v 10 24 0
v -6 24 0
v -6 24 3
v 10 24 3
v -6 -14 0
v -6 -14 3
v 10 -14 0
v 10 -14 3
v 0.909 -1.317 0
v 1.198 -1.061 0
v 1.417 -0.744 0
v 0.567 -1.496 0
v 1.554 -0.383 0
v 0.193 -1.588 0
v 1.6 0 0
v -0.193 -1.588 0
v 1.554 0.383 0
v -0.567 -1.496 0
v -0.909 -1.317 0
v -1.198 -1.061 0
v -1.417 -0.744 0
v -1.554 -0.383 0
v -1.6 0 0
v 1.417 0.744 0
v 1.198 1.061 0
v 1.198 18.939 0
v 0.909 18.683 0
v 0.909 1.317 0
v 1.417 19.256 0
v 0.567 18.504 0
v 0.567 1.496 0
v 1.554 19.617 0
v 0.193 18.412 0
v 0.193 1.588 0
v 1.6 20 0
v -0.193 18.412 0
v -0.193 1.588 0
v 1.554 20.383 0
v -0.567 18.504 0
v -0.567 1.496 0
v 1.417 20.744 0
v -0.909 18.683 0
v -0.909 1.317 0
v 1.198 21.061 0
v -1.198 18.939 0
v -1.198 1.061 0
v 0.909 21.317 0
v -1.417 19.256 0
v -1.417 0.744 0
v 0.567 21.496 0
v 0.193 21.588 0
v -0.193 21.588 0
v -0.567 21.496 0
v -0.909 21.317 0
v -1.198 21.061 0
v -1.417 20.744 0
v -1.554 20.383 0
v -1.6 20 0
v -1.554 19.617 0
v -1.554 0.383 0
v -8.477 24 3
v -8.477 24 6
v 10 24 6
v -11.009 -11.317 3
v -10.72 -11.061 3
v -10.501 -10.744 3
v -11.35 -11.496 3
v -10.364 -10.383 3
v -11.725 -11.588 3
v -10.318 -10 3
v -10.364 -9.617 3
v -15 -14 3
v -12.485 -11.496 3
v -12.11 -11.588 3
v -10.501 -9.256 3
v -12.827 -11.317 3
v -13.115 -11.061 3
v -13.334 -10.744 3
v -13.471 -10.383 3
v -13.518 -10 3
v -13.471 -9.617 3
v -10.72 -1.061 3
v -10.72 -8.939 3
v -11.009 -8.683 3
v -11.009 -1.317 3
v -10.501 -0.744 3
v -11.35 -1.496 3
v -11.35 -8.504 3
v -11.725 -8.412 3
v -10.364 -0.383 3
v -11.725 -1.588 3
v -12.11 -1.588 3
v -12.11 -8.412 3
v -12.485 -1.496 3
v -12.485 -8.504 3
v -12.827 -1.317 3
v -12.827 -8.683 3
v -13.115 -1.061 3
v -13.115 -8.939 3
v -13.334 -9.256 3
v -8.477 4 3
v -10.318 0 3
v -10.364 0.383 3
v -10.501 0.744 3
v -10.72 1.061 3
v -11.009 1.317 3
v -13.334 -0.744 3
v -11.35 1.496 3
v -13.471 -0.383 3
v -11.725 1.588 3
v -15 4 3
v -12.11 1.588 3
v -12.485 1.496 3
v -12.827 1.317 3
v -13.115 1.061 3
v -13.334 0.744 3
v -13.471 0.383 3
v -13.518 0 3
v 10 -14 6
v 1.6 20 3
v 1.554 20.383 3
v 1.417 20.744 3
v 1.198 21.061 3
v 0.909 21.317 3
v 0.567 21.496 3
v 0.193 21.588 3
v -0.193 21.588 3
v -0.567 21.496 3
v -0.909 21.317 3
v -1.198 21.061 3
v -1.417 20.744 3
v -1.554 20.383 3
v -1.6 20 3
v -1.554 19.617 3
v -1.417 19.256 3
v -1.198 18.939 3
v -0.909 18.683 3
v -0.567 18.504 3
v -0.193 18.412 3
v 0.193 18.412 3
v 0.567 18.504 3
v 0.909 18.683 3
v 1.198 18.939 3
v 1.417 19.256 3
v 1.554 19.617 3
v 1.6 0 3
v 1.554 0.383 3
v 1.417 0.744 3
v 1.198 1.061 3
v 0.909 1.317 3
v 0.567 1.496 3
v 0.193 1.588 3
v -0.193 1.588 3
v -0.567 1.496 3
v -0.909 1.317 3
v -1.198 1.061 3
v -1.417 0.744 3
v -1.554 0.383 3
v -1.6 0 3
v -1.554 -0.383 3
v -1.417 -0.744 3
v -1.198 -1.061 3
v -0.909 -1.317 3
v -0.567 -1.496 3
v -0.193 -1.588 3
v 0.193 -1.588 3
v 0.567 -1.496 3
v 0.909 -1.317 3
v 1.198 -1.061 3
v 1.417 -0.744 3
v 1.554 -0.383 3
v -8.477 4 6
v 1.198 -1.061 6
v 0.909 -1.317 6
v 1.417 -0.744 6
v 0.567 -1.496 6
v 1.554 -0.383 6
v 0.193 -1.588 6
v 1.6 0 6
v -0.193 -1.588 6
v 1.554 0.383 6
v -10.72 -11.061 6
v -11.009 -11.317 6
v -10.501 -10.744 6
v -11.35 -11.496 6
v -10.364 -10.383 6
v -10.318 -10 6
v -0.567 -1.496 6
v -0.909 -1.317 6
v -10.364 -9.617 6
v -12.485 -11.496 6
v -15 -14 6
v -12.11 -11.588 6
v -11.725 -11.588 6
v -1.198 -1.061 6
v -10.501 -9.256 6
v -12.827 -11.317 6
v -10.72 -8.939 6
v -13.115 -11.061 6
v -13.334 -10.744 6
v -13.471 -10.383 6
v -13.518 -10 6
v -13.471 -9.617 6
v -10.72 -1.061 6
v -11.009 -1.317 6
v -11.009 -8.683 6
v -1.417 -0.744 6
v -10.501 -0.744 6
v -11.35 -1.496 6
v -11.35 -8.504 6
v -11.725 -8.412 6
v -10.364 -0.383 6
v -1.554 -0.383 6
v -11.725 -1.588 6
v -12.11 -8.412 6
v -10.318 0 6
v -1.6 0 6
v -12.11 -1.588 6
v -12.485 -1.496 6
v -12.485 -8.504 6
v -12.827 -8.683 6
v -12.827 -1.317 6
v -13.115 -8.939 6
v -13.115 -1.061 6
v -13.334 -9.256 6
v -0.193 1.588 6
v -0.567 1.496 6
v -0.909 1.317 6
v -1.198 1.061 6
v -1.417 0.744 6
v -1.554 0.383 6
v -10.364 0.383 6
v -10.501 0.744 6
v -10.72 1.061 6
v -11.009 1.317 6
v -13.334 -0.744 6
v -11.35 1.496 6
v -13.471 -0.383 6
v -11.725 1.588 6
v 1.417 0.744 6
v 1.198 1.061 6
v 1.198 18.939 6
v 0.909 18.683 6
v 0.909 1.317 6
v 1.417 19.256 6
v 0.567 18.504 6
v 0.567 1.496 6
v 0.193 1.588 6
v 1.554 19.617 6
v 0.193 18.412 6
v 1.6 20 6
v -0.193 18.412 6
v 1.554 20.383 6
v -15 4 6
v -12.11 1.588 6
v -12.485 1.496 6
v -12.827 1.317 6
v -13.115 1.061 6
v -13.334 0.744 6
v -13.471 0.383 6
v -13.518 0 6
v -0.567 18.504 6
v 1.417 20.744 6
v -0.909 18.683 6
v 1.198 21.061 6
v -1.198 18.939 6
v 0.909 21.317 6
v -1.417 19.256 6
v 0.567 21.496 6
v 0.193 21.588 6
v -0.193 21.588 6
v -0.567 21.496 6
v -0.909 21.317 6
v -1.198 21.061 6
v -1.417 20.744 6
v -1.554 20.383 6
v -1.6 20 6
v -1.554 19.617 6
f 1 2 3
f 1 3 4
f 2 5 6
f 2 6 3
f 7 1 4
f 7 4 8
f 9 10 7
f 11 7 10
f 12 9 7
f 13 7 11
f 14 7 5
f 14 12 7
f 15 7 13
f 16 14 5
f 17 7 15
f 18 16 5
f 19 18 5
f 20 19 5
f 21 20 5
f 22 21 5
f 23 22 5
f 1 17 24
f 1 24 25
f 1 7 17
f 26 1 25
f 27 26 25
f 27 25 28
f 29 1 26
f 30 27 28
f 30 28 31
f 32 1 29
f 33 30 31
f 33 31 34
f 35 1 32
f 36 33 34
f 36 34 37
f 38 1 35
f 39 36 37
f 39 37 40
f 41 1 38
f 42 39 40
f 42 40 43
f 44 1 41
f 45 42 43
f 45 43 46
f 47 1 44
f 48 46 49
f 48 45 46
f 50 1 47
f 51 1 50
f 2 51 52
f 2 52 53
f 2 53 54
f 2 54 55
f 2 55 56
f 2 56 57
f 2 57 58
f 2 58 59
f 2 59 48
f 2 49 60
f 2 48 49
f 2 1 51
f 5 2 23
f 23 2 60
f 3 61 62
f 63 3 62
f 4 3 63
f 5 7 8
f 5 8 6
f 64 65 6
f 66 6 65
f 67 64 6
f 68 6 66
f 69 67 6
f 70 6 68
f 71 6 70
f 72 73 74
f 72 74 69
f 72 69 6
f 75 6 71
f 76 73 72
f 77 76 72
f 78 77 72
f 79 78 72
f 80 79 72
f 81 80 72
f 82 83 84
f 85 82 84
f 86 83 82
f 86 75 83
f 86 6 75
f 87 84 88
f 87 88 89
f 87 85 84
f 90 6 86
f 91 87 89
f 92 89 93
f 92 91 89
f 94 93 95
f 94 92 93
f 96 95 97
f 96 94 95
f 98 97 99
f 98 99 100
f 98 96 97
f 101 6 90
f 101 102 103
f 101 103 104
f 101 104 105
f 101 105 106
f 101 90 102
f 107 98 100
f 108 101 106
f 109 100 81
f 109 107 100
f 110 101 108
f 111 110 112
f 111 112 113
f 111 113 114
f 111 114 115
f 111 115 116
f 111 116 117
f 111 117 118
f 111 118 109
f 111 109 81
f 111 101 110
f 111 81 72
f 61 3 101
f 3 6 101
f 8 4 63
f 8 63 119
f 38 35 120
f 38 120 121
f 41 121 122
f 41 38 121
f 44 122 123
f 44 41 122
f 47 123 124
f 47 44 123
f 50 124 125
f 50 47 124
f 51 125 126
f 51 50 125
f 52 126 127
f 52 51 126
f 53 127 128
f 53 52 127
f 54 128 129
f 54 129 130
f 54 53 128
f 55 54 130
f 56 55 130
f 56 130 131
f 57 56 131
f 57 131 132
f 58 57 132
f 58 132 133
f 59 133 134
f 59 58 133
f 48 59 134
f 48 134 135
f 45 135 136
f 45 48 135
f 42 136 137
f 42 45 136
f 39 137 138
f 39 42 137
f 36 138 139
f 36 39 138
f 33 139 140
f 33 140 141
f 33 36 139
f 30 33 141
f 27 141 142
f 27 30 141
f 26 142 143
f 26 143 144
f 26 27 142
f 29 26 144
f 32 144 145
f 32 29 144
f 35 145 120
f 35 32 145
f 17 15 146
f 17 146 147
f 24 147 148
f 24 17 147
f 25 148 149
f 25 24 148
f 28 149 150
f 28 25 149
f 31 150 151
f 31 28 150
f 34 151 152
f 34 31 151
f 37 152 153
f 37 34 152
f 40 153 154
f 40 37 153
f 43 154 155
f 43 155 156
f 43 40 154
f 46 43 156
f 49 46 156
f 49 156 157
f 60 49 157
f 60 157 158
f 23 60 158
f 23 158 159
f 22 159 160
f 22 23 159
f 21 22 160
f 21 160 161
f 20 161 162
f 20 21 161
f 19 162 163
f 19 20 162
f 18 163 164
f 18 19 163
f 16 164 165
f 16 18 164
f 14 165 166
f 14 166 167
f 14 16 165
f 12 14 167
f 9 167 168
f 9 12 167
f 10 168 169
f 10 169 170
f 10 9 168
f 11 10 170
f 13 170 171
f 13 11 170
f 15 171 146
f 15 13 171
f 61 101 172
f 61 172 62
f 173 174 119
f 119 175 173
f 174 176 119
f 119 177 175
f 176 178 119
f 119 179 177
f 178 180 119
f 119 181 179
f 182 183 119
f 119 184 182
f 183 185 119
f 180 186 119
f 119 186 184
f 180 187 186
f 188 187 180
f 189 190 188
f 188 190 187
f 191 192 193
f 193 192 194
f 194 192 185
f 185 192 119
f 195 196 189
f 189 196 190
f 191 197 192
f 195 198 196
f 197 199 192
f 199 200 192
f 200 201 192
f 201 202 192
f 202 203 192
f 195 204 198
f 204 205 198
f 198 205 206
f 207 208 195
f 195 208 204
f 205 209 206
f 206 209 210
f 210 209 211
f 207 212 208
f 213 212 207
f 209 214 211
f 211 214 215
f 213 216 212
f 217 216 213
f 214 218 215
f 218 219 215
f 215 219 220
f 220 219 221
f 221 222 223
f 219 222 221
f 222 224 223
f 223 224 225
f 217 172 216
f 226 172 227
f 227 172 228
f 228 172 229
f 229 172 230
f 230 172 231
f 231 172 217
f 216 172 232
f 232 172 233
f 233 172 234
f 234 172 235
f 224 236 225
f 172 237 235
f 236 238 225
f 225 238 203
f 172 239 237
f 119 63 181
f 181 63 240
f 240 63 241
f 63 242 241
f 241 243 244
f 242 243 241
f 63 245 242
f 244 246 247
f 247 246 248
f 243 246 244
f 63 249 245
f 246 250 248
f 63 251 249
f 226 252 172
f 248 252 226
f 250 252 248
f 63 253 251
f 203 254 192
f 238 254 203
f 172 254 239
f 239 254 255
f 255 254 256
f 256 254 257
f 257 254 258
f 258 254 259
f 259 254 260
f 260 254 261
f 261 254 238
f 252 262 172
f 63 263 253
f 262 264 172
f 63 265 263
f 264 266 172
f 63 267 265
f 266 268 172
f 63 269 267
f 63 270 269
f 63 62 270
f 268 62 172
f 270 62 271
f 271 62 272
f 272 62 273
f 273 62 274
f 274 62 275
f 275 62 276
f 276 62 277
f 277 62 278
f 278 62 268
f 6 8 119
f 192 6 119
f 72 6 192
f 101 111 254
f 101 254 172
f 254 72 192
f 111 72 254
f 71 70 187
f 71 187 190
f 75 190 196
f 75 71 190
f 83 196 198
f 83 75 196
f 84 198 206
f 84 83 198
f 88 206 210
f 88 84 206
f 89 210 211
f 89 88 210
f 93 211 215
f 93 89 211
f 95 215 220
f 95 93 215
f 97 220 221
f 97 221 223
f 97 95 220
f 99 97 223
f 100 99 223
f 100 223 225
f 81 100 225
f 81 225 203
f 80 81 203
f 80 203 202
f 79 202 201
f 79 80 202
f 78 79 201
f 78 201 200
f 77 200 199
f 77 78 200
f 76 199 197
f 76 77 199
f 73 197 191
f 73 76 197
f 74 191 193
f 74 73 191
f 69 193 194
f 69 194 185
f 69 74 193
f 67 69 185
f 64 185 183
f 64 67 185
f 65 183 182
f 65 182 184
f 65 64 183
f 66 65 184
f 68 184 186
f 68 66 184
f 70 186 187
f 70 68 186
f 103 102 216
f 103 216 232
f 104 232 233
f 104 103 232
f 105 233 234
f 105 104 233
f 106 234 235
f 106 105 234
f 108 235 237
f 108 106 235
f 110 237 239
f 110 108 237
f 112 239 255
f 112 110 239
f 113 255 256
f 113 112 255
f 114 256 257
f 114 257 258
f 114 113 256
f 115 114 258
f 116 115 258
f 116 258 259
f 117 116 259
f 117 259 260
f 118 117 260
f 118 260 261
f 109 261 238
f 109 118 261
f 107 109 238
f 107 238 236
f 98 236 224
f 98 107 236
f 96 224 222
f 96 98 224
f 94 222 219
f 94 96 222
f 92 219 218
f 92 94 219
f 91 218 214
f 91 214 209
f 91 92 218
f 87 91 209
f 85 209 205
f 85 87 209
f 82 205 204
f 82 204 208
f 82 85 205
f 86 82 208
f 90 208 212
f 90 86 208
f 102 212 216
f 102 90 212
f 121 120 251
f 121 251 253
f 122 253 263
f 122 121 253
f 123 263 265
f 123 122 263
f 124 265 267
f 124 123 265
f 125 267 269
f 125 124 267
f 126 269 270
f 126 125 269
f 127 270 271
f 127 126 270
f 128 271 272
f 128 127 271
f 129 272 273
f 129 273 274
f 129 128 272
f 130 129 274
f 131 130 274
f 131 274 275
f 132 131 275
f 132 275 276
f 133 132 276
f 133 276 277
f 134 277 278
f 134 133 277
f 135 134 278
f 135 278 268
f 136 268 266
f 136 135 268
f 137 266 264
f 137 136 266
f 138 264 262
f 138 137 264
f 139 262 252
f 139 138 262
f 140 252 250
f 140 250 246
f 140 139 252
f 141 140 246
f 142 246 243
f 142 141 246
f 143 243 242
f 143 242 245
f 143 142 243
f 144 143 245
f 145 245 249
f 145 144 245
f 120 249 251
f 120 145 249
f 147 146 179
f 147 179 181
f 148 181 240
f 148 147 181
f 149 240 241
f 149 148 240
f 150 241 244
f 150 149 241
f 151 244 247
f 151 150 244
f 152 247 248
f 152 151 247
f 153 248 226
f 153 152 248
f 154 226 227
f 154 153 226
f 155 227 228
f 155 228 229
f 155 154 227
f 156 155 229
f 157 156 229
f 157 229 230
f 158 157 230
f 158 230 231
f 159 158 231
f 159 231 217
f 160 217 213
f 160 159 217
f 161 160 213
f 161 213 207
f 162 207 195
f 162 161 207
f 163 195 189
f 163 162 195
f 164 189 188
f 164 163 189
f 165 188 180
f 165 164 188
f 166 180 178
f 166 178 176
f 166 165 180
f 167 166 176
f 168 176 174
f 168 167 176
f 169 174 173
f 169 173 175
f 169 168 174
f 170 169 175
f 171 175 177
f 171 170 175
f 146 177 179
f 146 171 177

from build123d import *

# Parameters (mm, degrees)
SKETCH_W     = 16
SKETCH_H     = 38
SKETCH_R     = 1.6
PAD_DEPTH    = 3
SKETCH002_R  = 1.6
PAD001_DEPTH = 3


with BuildPart() as part:
    # Sketch → Pad (new body)
    with BuildSketch(Plane.XY):
        with Locations((2, 5)):
            Rectangle(SKETCH_W, SKETCH_H)
        Circle(SKETCH_R, mode=Mode.SUBTRACT)
        with Locations((0, 20)):
            Circle(SKETCH_R, mode=Mode.SUBTRACT)
    extrude(amount=PAD_DEPTH)

    # Sketch002 → Pad001 (join)
    with BuildSketch(Plane.XY.offset(3)):
        Polygon((-15, -14), (-15, 4), (-8.477261, 4), (-8.477261, 24), (10, 24), (10, -14), align=None)
        with Locations((0, 20)):
            Circle(SKETCH002_R, mode=Mode.SUBTRACT)
        Circle(SKETCH002_R, mode=Mode.SUBTRACT)
        with Locations((-11.917612, 0)):
            Circle(SKETCH002_R, mode=Mode.SUBTRACT)
        with Locations((-11.917612, -10)):
            Circle(SKETCH002_R, mode=Mode.SUBTRACT)
    extrude(amount=PAD001_DEPTH)


solid = part.part
